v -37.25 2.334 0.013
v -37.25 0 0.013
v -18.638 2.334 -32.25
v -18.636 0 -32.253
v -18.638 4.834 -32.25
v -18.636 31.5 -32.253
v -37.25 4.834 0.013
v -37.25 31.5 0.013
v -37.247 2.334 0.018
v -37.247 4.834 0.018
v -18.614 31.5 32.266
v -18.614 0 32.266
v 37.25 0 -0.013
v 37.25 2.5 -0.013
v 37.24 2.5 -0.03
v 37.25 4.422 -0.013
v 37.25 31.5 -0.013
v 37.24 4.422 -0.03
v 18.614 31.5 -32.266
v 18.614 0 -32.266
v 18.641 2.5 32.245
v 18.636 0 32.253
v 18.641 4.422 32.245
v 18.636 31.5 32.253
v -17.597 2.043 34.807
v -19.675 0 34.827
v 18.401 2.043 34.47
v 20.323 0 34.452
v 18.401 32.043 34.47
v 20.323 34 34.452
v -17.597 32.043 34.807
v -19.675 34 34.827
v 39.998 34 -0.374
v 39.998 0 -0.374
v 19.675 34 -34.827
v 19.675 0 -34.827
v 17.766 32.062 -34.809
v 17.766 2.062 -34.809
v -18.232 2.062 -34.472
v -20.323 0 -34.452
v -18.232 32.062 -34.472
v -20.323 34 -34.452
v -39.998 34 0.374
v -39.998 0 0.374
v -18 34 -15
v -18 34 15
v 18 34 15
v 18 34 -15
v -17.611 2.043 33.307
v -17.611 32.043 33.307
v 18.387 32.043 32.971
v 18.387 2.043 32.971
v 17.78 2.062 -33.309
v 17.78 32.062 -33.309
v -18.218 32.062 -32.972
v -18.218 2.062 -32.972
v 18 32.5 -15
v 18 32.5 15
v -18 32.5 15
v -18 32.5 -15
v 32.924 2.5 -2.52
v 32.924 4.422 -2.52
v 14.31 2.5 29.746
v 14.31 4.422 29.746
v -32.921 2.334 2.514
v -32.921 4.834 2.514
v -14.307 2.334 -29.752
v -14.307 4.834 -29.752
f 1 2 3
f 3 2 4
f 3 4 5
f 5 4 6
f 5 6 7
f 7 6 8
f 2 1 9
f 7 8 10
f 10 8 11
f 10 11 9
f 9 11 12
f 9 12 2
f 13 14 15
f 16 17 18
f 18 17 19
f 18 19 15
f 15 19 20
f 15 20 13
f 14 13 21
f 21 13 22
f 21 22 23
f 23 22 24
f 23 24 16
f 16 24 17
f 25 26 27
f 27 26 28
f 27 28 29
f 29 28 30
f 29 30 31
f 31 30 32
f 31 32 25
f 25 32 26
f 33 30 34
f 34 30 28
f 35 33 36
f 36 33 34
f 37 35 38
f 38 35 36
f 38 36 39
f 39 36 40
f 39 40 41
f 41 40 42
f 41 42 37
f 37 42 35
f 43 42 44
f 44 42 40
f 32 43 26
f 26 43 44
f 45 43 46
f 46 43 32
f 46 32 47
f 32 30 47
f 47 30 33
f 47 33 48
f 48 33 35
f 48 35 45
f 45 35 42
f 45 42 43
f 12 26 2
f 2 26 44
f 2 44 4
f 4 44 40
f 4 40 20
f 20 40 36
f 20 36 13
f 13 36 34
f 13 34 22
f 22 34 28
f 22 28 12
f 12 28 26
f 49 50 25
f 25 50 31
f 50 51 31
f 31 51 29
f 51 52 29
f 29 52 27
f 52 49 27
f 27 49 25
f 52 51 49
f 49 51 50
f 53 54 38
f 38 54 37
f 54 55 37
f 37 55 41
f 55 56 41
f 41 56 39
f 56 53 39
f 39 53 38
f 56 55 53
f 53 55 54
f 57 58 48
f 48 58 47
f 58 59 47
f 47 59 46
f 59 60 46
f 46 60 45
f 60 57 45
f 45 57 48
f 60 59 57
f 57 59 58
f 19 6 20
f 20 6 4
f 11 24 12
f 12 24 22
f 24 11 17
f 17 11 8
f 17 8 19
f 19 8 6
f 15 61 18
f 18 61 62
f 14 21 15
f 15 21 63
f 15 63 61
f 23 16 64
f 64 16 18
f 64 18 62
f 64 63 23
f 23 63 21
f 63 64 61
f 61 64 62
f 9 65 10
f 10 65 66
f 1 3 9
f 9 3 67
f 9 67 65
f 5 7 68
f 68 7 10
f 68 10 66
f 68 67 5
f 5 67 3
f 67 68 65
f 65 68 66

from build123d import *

# Parameters (mm, degrees)
BOSS_EXTRUDE1_DEPTH = 34
SKETCH2_W           = 36
SKETCH2_H           = 30
CUT_EXTRUDE1_DEPTH  = 1.5
SKETCH3_W           = 36
SKETCH3_H           = 30
CUT_EXTRUDE2_DEPTH  = 1.5
SKETCH4_W           = 36
SKETCH4_H           = 30
CUT_EXTRUDE3_DEPTH  = 1.5
CUT_EXTRUDE5_DEPTH  = 31.5
SKETCH6_W           = 37.25
SKETCH6_H           = 1.921966438
BOSS_EXTRUDE2_DEPTH = 5
SKETCH7_W           = 37.25
SKETCH7_H           = 2.5
BOSS_EXTRUDE3_DEPTH = 5


with BuildPart() as part:
    # Sketch1 → Boss-Extrude1 (new body)
    with BuildSketch(Plane(origin=(0, 0, 0), x_dir=(1, 0, 0), z_dir=(0, 1, 0))):
        Polygon((20.323082913, -34.452464366), (39.998250821, 0.374073902), (19.675167908, 34.826538269), (-20.323082913, 34.452464366), (-39.998250821, -0.374073902), (-19.675167908, -34.826538269), align=None)
    extrude(amount=BOSS_EXTRUDE1_DEPTH)

    # Sketch2 → Cut-Extrude1 (cut)
    with BuildSketch(Plane(origin=(0.323957502, 0, 34.639501318), x_dir=(0.9999562705174567, 0, -0.00935184756179416), z_dir=(0.009351847561794161, 0, 0.9999562705174567))):
        with Locations((0.07819078, 17.042979031)):
            Rectangle(SKETCH2_W, SKETCH2_H)
    extrude(amount=-CUT_EXTRUDE1_DEPTH, mode=Mode.SUBTRACT)

    # Sketch3 → Cut-Extrude2 (cut)
    with BuildSketch(Plane(origin=(-0.323957502, 0, -34.639501318), x_dir=(-0.9999562705174567, 0, 0.009351847561793986), z_dir=(-0.009351847561793988, 0, -0.9999562705174567))):
        with Locations((-0.090906466, 17.061793862)):
            Rectangle(SKETCH3_W, SKETCH3_H)
    extrude(amount=-CUT_EXTRUDE2_DEPTH, mode=Mode.SUBTRACT)

    # Sketch4 → Cut-Extrude3 (cut)
    with BuildSketch(Plane(origin=(0, 34, 0), x_dir=(1, 0, 0), z_dir=(0, 1, 0))):
        Rectangle(SKETCH4_W, SKETCH4_H)
    extrude(amount=-CUT_EXTRUDE3_DEPTH, mode=Mode.SUBTRACT)

    # Sketch5 → Cut-Extrude5 (cut)
    with BuildSketch(Plane.XZ):
        Polygon((37.249997801, -0.012800837), (18.63608475, 32.253043968), (-18.61391305, 32.265844805), (-37.249997801, 0.012800837), (-18.63608475, -32.253043968), (18.61391305, -32.265844805), align=None)
    extrude(amount=-CUT_EXTRUDE5_DEPTH, mode=Mode.SUBTRACT)

    # Sketch6 → Boss-Extrude2 (add)
    with BuildSketch(Plane(origin=(27.943041275, 0, 16.120121566), x_dir=(-0.4997023637702259, 0, 0.8661971759607906), z_dir=(-0.8661971759607907, 0, -0.499702363770226))):
        with Locations((-0.009802695, 3.460983219)):
            Rectangle(SKETCH6_W, SKETCH6_H)
    extrude(amount=BOSS_EXTRUDE2_DEPTH)

    # Sketch7 → Boss-Extrude3 (add)
    with BuildSketch(Plane(origin=(-27.943041275, 0, -16.120121566), x_dir=(0.49970236377022564, 0, -0.8661971759607908), z_dir=(0.8661971759607908, 0, 0.49970236377022564))):
        with Locations((-0.003212365, 3.584418616)):
            Rectangle(SKETCH7_W, SKETCH7_H)
    extrude(amount=BOSS_EXTRUDE3_DEPTH)


solid = part.part
